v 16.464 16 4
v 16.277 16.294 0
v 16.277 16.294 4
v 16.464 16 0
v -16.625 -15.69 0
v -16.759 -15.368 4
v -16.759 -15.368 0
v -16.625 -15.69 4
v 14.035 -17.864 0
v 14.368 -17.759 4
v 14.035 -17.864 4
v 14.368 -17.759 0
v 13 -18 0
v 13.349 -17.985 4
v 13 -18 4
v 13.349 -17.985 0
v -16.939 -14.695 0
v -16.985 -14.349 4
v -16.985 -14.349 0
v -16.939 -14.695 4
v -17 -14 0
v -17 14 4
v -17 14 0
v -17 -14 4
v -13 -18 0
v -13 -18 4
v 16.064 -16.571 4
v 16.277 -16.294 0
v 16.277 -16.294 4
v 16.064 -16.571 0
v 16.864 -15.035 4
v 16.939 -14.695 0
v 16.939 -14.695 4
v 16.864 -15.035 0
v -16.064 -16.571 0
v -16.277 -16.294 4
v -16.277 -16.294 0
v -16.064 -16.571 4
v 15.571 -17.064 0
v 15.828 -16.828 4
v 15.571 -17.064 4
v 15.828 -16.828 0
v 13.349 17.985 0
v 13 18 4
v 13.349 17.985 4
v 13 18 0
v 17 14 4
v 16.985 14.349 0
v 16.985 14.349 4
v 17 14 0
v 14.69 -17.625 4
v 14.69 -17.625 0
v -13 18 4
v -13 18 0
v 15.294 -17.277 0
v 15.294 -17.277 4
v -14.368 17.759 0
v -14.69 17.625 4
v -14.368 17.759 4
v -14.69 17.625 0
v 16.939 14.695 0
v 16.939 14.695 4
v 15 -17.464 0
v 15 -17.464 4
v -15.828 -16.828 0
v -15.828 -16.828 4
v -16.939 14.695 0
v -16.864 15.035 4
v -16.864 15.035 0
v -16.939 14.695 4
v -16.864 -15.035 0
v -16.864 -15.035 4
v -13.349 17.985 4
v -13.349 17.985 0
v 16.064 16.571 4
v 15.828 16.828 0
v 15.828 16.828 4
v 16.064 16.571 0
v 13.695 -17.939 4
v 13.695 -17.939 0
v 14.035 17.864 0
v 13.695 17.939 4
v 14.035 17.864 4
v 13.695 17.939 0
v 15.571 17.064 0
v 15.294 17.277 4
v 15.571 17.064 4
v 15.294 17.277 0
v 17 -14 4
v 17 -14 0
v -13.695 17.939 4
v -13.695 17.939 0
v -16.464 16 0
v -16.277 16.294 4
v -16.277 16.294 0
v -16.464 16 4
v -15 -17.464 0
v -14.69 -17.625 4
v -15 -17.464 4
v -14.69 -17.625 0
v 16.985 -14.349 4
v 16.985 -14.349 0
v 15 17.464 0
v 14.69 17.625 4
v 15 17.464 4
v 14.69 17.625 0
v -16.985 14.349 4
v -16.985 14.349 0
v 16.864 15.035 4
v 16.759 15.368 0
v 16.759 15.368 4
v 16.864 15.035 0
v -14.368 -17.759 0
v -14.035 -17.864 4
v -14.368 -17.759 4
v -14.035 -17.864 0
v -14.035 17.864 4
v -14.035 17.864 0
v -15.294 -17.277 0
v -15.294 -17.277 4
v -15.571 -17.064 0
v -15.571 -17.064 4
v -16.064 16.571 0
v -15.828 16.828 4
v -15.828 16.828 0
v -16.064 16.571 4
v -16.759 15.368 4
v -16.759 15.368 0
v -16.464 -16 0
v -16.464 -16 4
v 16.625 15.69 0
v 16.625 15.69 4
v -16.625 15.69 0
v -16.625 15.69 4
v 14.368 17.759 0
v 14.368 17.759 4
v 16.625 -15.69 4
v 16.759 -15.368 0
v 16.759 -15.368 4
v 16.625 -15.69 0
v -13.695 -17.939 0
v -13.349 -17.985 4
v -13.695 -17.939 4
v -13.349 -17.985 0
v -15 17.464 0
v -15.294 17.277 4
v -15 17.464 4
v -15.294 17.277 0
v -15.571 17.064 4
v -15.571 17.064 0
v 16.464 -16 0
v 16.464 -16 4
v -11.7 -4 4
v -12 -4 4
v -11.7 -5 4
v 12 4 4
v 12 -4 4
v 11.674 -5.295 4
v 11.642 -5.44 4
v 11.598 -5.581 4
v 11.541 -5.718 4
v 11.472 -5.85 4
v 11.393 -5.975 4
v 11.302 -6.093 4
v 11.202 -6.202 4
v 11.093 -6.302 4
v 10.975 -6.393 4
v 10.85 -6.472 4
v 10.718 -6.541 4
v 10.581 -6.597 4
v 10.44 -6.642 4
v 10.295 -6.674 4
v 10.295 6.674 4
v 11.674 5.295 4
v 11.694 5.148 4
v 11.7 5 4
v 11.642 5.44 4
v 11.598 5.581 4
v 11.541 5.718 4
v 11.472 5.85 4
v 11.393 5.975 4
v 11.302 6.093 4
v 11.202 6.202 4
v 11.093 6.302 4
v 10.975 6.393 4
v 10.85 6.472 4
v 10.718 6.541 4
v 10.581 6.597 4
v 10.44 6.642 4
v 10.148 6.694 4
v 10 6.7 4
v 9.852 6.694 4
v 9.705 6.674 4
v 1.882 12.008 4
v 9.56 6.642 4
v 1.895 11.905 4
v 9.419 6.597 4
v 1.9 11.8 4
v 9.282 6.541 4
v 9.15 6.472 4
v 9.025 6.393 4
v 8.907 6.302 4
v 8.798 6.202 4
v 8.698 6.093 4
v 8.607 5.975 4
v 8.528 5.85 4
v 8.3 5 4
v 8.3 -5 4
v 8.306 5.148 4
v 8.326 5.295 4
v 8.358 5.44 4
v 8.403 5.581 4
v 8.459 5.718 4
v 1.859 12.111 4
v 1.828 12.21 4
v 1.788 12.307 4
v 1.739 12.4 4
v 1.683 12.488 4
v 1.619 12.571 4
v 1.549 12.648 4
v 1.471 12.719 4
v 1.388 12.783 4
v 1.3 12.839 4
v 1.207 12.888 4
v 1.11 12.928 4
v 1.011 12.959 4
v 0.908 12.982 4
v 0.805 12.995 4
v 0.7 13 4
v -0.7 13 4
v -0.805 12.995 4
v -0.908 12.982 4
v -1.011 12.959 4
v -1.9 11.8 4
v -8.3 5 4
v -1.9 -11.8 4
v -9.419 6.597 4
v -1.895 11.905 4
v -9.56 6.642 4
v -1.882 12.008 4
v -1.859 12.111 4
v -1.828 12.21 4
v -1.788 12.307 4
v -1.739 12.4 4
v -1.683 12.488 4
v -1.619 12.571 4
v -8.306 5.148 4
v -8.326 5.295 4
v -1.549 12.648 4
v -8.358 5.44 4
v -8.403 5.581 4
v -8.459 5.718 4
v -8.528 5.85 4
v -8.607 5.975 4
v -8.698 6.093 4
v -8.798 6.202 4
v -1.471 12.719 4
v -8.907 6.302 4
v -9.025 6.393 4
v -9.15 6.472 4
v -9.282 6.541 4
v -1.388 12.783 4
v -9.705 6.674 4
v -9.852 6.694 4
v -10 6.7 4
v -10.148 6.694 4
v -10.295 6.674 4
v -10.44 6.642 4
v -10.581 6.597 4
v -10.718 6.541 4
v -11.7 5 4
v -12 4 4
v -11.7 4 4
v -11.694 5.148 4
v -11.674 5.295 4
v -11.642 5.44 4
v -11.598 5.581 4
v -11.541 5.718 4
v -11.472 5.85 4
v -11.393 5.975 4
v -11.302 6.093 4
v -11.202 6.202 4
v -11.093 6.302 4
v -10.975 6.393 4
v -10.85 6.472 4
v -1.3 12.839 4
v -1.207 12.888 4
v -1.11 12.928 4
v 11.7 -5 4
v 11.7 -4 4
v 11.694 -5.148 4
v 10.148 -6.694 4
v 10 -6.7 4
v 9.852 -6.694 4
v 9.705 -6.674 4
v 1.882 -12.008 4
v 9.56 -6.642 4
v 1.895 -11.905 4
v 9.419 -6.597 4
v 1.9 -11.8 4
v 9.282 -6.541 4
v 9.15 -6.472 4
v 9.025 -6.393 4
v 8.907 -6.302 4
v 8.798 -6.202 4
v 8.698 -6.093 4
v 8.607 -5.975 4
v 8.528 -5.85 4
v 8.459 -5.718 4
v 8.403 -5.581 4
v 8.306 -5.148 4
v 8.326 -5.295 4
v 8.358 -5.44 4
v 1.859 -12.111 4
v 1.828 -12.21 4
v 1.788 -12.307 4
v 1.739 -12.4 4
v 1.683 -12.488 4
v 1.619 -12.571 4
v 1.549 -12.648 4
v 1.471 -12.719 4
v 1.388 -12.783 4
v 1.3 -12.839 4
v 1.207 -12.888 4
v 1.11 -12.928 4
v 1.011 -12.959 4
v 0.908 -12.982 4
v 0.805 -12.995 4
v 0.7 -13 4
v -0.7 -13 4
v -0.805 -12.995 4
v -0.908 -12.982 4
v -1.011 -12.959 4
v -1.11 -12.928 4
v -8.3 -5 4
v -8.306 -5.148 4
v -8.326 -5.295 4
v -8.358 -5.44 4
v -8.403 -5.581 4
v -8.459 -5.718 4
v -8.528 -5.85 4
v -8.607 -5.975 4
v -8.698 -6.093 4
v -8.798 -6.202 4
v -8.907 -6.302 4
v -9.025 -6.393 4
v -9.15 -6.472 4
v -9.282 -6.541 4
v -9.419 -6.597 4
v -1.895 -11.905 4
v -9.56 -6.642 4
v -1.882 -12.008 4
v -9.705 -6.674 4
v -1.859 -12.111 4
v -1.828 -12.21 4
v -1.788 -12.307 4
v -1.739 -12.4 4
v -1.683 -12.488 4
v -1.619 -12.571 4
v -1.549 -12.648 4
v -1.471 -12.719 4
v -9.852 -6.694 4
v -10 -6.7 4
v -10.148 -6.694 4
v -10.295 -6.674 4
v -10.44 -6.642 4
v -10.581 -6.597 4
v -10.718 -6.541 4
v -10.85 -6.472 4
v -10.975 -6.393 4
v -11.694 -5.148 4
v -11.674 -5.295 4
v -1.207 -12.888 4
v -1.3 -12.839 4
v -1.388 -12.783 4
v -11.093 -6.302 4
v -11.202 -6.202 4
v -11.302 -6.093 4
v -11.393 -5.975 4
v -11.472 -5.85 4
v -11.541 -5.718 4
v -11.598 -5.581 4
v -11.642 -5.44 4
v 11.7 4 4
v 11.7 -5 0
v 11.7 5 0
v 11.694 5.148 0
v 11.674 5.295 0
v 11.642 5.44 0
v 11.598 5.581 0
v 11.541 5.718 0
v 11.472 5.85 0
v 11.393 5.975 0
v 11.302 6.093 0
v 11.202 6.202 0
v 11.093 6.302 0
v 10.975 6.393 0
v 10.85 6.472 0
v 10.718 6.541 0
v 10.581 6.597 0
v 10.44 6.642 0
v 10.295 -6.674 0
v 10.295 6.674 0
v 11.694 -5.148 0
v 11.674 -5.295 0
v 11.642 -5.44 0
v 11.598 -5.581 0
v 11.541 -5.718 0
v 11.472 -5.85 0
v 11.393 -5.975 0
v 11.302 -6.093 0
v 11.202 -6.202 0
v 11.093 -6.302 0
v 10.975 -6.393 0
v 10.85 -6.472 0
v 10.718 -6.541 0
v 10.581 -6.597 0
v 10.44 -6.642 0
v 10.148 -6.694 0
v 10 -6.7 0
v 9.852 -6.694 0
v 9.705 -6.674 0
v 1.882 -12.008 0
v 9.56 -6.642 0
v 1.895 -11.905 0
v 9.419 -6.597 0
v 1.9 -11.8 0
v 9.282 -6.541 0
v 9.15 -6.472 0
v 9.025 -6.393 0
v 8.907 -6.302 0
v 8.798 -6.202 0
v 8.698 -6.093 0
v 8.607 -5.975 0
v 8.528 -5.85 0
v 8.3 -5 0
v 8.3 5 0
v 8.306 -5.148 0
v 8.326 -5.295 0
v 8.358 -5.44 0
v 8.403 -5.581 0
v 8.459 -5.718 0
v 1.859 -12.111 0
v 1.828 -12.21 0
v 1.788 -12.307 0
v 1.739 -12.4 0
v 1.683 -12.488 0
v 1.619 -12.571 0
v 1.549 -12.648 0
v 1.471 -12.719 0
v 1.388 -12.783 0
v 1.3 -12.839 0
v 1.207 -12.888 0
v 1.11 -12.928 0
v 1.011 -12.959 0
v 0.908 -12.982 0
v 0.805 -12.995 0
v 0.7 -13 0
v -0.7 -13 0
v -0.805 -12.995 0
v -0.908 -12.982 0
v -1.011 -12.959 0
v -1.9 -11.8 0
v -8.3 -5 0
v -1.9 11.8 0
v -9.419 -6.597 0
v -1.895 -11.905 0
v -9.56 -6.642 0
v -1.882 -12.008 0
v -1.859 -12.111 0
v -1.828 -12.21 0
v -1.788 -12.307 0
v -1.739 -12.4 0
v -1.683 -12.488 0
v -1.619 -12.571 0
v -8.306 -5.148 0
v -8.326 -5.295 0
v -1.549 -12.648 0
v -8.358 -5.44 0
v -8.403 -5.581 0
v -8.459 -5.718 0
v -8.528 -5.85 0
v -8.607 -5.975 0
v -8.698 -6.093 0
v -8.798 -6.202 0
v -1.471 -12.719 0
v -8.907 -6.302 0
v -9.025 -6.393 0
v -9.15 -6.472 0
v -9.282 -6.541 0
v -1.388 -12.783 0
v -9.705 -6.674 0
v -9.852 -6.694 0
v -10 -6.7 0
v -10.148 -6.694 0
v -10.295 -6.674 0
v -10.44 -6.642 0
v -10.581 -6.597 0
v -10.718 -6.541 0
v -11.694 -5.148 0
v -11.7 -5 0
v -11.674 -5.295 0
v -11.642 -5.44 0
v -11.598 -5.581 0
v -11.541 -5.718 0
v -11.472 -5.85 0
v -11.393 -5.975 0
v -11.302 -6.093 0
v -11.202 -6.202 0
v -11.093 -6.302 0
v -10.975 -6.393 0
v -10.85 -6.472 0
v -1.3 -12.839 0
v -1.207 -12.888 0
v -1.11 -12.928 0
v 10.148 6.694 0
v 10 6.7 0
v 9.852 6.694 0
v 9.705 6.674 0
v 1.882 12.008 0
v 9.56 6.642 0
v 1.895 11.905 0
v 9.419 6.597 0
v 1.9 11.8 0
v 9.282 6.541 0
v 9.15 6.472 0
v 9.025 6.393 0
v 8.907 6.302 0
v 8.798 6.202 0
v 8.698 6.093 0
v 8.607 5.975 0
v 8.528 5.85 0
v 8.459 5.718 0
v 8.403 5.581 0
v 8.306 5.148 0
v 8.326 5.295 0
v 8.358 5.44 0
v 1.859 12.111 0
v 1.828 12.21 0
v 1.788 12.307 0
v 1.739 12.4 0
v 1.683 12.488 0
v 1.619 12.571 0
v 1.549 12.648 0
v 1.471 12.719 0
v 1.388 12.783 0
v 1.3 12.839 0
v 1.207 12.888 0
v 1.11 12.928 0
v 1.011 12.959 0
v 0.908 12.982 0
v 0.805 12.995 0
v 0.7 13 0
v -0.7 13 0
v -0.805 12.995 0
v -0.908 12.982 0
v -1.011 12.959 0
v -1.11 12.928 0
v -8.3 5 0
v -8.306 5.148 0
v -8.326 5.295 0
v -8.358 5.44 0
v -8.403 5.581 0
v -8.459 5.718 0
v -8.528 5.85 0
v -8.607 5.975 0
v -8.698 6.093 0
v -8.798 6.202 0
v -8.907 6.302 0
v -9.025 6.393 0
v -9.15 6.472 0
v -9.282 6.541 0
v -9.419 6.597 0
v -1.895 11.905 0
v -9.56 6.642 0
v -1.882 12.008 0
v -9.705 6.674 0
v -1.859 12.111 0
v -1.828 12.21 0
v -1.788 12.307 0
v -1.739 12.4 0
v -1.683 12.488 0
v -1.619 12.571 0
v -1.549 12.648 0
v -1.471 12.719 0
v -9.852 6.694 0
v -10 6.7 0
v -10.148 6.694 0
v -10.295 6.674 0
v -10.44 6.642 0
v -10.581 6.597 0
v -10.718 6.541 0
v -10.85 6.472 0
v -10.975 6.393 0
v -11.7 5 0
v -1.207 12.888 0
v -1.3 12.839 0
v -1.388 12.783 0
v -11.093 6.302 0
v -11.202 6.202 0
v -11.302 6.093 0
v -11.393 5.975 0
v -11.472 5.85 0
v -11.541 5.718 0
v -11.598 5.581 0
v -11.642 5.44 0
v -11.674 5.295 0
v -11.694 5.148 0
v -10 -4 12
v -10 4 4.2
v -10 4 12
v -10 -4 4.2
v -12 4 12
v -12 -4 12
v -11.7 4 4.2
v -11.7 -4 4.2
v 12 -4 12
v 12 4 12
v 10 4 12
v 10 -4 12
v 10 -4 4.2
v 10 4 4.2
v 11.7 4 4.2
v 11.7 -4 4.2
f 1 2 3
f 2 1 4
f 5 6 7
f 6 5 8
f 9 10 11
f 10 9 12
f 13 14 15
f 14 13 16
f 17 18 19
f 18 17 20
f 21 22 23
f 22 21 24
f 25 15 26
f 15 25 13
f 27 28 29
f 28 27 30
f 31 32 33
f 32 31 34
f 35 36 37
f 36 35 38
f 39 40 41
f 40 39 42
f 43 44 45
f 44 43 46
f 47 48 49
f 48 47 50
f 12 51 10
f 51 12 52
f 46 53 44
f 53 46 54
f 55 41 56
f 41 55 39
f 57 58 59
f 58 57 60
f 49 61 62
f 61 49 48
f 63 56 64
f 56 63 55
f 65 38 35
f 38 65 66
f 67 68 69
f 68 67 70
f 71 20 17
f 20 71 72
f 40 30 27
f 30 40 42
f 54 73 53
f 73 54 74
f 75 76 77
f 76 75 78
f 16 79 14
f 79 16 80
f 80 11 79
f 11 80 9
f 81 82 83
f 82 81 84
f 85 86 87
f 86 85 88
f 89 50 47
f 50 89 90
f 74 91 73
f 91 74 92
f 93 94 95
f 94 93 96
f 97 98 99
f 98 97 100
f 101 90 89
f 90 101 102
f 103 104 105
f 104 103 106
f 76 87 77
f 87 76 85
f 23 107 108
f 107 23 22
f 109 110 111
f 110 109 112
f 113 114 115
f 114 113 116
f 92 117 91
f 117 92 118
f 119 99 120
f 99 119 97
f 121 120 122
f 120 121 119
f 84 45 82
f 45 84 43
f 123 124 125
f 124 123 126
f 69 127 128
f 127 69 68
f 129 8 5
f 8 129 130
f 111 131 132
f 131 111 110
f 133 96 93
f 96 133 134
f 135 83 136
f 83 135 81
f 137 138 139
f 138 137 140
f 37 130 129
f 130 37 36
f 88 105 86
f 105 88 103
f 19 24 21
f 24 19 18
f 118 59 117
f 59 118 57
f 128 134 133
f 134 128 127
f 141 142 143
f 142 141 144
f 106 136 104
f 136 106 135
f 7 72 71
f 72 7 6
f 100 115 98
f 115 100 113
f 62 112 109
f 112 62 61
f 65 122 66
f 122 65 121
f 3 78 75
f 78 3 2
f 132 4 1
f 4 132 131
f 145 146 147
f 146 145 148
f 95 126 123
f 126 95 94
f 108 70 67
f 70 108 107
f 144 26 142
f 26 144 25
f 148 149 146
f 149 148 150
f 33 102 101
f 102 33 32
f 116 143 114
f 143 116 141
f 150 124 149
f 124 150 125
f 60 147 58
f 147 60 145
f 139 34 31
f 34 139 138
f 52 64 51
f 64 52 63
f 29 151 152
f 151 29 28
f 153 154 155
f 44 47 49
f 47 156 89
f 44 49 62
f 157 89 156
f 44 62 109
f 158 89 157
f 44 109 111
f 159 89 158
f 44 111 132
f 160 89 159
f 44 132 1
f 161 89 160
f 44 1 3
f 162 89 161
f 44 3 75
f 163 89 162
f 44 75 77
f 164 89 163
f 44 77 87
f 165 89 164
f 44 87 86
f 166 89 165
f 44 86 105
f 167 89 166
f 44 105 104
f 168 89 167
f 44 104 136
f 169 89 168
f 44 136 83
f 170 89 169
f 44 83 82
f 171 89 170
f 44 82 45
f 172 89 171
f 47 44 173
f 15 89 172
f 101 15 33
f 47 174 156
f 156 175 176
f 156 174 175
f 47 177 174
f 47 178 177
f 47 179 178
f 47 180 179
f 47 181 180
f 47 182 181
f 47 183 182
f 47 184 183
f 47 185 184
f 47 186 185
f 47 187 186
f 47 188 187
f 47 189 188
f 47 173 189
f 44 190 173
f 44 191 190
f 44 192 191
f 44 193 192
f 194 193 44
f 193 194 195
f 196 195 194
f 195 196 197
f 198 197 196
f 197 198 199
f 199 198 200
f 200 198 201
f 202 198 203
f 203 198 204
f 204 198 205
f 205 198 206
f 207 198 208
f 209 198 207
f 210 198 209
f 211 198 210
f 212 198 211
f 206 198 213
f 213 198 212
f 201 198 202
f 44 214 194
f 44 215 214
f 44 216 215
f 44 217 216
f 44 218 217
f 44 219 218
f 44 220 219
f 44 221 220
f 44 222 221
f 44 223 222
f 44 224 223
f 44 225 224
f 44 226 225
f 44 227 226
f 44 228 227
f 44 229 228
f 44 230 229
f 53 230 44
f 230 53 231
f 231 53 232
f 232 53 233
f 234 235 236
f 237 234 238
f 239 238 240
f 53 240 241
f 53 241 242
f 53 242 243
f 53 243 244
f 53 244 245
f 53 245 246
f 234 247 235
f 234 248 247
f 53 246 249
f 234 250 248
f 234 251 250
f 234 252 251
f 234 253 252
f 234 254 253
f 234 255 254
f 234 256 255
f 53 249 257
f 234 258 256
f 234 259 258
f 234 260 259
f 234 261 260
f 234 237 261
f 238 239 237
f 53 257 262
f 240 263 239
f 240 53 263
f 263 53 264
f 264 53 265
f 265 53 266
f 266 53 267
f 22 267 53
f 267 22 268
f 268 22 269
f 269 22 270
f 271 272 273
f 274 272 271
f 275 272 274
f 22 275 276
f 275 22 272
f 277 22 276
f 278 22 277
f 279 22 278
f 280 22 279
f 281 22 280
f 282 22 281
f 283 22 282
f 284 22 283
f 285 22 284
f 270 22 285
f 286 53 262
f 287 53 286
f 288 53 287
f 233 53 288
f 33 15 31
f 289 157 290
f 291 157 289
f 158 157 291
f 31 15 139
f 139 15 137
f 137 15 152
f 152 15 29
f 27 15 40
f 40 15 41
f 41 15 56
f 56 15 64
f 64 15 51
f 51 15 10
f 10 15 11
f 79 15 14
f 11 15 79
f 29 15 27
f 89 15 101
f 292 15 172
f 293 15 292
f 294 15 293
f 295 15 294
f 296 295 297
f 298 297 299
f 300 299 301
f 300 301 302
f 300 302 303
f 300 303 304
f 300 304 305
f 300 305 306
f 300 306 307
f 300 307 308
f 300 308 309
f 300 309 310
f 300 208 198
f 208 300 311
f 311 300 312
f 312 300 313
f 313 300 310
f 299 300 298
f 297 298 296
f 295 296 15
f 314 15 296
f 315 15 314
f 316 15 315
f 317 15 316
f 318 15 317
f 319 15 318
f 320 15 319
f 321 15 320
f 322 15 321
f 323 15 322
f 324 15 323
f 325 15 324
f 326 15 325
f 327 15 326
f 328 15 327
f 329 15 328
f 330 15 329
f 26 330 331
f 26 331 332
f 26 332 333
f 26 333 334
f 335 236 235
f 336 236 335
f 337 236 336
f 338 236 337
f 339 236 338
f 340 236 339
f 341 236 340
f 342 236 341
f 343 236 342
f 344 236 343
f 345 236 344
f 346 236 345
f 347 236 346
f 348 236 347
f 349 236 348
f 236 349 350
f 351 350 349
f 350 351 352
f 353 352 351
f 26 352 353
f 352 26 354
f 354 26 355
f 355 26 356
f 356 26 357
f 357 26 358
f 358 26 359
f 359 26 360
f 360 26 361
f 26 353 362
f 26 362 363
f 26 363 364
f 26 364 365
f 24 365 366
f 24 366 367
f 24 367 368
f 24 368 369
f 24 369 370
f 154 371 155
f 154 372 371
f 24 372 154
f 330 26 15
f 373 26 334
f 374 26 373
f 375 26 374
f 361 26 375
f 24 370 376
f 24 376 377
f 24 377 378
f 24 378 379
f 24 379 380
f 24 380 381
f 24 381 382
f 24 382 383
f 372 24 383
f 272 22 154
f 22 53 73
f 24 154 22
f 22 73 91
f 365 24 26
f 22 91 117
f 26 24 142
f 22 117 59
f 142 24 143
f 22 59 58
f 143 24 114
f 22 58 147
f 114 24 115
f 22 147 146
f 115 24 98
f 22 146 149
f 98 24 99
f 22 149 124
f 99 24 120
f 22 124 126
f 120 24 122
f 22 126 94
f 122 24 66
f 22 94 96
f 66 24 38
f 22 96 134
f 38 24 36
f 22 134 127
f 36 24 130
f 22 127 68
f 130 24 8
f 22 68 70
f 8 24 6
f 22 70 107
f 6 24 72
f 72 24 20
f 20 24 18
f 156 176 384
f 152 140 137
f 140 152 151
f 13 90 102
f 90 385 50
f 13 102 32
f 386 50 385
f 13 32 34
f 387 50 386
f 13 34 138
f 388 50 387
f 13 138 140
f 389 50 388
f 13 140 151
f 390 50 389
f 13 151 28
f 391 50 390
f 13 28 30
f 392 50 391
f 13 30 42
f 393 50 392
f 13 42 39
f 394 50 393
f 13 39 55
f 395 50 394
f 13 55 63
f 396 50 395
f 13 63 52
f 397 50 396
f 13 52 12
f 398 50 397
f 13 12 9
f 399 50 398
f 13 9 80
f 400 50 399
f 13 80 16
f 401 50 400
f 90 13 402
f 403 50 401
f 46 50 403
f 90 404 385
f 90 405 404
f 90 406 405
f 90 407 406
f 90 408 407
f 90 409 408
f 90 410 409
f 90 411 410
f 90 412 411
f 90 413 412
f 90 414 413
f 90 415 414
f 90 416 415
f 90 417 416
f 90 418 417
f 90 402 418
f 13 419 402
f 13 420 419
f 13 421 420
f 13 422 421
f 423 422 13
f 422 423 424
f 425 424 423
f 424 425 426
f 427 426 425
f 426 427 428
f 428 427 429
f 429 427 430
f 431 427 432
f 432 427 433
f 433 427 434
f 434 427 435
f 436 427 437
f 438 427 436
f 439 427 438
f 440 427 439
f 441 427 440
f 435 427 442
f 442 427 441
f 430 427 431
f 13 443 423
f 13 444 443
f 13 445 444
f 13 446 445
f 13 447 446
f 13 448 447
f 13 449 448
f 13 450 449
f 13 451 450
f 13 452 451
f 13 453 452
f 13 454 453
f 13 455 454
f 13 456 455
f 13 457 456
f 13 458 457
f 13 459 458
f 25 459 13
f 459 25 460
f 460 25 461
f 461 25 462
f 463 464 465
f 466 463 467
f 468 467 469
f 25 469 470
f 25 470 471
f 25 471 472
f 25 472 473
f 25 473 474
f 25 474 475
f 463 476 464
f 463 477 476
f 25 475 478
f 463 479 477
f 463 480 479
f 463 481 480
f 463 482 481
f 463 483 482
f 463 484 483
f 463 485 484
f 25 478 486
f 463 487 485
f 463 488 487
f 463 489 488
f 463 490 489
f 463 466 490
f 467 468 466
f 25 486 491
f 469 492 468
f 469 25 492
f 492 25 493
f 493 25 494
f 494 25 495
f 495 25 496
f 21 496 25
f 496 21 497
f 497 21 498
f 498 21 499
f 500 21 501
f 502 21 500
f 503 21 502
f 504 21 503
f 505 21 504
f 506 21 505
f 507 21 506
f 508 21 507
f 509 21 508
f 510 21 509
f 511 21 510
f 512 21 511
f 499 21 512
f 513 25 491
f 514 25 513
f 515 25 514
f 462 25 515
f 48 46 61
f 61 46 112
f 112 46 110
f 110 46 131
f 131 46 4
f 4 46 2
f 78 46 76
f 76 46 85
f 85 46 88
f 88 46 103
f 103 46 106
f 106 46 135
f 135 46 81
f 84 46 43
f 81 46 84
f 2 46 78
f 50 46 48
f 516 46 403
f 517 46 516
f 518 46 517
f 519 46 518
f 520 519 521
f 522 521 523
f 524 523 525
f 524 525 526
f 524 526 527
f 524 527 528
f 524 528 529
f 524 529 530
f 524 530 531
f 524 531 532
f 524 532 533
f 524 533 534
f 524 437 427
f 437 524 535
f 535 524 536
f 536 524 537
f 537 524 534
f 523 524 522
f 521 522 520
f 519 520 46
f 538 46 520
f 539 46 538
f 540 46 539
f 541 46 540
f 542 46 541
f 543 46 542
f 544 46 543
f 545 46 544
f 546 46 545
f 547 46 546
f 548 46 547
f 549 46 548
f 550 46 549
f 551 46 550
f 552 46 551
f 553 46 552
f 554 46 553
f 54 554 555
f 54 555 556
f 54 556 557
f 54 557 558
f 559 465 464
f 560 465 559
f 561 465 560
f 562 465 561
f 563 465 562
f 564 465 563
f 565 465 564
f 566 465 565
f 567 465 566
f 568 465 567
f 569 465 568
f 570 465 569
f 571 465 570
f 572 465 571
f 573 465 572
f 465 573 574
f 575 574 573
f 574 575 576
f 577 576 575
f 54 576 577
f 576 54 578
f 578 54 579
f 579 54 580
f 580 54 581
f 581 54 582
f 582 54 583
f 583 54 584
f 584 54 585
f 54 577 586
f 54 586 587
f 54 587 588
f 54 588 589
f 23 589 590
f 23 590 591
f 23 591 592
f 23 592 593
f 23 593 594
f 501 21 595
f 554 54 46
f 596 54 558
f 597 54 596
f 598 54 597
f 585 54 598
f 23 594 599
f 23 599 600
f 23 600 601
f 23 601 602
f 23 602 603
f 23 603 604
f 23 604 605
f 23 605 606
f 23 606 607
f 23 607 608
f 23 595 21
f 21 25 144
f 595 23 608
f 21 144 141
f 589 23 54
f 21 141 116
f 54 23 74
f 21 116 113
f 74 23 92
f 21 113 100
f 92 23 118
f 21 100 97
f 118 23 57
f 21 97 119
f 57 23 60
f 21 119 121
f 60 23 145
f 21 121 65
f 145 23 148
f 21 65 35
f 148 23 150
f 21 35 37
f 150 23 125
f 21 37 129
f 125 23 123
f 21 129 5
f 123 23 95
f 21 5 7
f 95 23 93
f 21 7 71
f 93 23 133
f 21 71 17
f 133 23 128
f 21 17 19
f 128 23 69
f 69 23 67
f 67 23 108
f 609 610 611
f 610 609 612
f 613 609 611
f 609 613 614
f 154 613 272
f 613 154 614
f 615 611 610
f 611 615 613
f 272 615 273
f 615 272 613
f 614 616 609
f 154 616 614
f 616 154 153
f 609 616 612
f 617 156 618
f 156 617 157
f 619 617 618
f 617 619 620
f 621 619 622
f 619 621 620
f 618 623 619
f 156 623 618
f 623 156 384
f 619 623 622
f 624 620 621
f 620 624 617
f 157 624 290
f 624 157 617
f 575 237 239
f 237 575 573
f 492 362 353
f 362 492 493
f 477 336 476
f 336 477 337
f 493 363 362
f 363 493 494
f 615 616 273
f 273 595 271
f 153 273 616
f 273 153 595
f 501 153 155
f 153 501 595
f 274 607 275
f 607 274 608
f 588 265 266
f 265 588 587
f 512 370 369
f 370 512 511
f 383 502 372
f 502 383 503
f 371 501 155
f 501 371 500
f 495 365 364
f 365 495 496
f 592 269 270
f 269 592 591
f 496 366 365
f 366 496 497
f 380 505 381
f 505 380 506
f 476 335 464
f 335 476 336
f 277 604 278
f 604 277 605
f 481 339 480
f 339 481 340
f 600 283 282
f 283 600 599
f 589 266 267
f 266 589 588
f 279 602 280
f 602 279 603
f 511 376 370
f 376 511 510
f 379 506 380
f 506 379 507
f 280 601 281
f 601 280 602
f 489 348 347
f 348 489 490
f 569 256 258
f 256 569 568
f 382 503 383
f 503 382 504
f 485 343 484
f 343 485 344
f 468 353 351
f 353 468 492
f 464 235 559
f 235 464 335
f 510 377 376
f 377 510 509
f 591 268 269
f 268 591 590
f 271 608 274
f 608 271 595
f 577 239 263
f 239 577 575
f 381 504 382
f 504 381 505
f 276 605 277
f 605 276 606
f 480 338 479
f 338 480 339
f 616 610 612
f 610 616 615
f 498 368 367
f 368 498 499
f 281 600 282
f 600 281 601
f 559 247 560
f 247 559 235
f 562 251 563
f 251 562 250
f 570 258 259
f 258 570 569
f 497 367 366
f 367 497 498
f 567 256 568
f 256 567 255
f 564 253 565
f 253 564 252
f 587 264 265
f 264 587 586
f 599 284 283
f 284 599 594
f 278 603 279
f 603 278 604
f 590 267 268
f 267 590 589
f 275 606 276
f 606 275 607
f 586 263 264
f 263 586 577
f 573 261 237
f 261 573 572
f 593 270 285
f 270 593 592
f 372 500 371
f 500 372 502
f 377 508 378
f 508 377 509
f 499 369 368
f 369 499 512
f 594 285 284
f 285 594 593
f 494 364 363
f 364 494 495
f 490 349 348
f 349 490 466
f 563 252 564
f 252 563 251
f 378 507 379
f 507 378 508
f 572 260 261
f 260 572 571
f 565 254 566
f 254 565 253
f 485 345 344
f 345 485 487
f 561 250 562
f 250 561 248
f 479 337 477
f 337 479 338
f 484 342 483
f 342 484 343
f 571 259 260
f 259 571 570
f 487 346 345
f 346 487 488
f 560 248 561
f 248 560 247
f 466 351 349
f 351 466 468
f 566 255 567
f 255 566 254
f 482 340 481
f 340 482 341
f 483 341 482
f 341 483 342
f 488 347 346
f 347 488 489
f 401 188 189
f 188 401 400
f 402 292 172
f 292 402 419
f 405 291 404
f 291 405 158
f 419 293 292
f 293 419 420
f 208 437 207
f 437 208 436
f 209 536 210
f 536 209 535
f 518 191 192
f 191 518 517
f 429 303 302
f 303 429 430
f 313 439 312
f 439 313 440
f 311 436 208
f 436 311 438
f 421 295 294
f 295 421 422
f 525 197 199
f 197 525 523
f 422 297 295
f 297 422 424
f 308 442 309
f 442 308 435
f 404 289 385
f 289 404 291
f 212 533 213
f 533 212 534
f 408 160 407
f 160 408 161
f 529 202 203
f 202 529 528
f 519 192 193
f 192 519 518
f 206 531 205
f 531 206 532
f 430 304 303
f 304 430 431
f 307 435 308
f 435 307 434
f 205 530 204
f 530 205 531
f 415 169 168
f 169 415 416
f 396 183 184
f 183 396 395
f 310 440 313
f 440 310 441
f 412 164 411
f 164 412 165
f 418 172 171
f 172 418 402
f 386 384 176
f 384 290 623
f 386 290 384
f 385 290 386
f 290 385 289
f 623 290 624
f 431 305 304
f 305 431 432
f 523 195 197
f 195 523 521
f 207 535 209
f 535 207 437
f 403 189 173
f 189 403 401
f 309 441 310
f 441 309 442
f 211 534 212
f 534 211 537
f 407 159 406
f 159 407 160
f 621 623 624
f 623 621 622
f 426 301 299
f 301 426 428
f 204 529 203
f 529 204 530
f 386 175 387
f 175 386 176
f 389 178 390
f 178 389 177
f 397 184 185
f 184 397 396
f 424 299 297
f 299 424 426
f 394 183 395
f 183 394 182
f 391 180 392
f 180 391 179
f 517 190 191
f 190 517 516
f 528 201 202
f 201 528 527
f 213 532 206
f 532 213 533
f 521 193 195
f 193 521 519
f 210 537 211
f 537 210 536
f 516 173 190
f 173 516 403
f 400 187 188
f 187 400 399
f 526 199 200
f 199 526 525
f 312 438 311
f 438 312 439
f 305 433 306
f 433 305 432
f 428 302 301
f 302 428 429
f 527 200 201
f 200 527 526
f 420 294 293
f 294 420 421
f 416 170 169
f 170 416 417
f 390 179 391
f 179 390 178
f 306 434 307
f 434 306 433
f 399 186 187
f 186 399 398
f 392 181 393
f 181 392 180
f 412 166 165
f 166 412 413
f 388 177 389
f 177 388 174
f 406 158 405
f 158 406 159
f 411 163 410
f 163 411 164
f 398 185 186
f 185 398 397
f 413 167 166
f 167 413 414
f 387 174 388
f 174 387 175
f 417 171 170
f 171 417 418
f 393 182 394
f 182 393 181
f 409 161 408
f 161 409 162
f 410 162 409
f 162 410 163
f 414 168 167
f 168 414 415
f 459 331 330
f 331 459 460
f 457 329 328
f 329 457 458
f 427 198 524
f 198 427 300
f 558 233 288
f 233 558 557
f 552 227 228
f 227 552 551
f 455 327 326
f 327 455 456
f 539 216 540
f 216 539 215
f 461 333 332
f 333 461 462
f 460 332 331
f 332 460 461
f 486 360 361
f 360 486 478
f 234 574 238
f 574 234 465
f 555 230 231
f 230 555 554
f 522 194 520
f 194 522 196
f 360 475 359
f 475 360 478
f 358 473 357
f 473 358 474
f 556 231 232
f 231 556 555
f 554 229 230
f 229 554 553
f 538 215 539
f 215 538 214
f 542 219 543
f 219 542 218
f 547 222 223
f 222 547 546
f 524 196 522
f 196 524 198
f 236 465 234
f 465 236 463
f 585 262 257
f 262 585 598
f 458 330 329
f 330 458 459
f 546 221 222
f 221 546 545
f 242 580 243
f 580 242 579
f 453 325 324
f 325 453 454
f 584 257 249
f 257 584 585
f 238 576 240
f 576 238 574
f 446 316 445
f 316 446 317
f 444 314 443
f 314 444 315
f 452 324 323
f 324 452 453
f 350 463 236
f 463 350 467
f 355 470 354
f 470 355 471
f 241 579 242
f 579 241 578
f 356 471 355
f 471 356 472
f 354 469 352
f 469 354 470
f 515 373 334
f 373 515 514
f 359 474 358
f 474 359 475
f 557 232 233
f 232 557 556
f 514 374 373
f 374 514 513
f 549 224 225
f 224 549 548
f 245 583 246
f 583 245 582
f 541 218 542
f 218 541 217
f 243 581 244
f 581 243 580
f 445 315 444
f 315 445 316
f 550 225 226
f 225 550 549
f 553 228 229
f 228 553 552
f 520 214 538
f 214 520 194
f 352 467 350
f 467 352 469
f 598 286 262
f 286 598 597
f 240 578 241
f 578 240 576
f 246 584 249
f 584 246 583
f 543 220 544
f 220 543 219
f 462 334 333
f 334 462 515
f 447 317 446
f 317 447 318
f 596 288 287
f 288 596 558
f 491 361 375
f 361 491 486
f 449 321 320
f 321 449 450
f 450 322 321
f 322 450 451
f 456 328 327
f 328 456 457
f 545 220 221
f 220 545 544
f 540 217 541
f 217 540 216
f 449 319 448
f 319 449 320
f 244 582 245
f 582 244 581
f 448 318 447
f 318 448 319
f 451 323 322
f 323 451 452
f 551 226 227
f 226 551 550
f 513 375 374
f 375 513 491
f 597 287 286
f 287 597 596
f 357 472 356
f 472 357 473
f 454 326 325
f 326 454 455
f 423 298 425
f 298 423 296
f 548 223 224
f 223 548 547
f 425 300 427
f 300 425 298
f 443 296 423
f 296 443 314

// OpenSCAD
// file: woli_config.scad
// ============================================================
// WOLI V1.1 AUDITED FINAL — MASTER PARAMETERS
// Units: mm
// ============================================================

$fn = 72;

// ---------- GLOBAL ----------
fit_clearance = 0.40;
wall = 3.0;
floor_t = 5.0;
cover_t = 2.8;
shell_r = 10.0;

m3_clear = 3.4;
m3_pilot_d = 2.8;
m3_pilot_depth = 4.2;

tie_slot_w = 3.8;
tie_slot_l = 18;

// ---------- BODY ----------
body_w = 170;
body_l = 90;
chassis_h = 31;
top_h = 34;

top_upper_w = 162;
top_upper_l = 80;
top_upper_r = 9;

// ---------- N20 DRIVE ----------
wheel_d = 43;
wheel_w = 17.5;

n20_x = 12;
n20_y = 33;
n20_z = 10;

n20_bracket_x = 25;
n20_bracket_y = 8.5;
n20_bracket_z = 11.5;
n20_bracket_hole_cc = 17;      // approx; slots absorb error

wheel_axis_ground_z = wheel_d/2; // reference only; actual chassis ground plane requires hardware check
wheel_opening_l = 25;            // side wheel cutout depth (Y), mm
motor_y = -body_l/2 + body_l/3;  // wheel center: 1/3 body depth in from front (-Y)
motor_slot_len = 8;
motor_bracket_zone_x = body_w/2 - 18;

// ---------- BALL CASTER ----------
caster_w = 22;
caster_l = 17;
caster_h = 15;
caster_ball_d_visual_ref = 11.5; // photo-only reference; not used for fit
caster_dock_y = body_l/2 - 21;

caster_body_clear = 0.7;
caster_retainer_t = 3.0;
caster_retainer_screw_cc = 27;

caster_mount_x = 15;
caster_mount_y = 12;
caster_floor_open = 18.5;

// ---------- MAIN PCB ----------
pcb_w = 50;
pcb_l = 70;
pcb_stack_h = 15;

pcb_tray_w = 56;
pcb_tray_l = 76;
pcb_mount_cc_x = 44;
pcb_mount_cc_y = 64;

// ---------- MG90S ----------
servo_a = 32.4;
servo_b = 32.5;
servo_c = 12;
servo_fit = 0.7;

// ---------- LIMIT SWITCH ----------
limit_w = 21;
limit_l = 23;
limit_h = 6;

// ---------- VL53L0X ----------
tof_w = 10.7;
tof_l = 25;
tof_h = 11.5;
tof_rail_clear = 0.7;

tof_bezel_w = 34;
tof_bezel_h = 19;

// ---------- PHONE HOLDER / NECK ----------
phone_ball_d = 18.0;            // physical socket fit still required
neck_h = 30;
neck_base_w = 54;
neck_base_l = 42;
neck_base_h = 5;
neck_hole_x = 38;
neck_hole_y = 26;

neck_recess_w = 62;
neck_recess_l = 50;
neck_recess_d = 1.2;

neck_pilot_d = 2.8;
neck_pilot_depth = 7.0;

// reference phone clearance envelope only
phone_ref_w = 165;
phone_ref_h = 82;
phone_ref_t = 12;

// ---------- KLIFE PD-Q2 BATTERY ----------
battery_w = 68;
battery_l = 143;
battery_h = 11;
battery_mass_g = 205;

battery_fit_clear = 0.8;
battery_tray_w = 84;
battery_tray_l = 146;
battery_tray_t = 2.4;
battery_rail_t = 2.5;
battery_rail_h = 5.5;
battery_center_y = -18;

battery_tray_mount_x = 39;
battery_tray_mount_y = 55;

// ---------- UPPER ELECTRONICS DECK ----------
bridge_w = 122;
bridge_l = 94;
bridge_t = 3.0;
bridge_leg_h = 20;
bridge_leg_x = 56;
bridge_leg_y = 36;

module_boss_h = 4.5;
module_boss_d = 8.0;
module_pilot_d = 2.8;

pcb_deck_cx = -25;
pcb_deck_cy = 0;

tb_deck_cx = 34;
tb_deck_cy = 17;

usbc_deck_cx = 36;
usbc_deck_cy = -24;

// ---------- TB6612FNG HW-166 ----------
tb6612_w = 26;
tb6612_l = 26;
tb6612_clear = 0.6;

// total installed height is intentionally not hard-coded

// ---------- USB-C BREAKOUT ----------
usbc_board_w = 12;
usbc_board_l = 15;
usbc_connector_h = 4.2;
usbc_clear = 0.6;

// ---------- TOP COVER INTERFACE ----------
cover_skirt_depth = 4.0;
cover_skirt_clear = 0.8;
cover_skirt_t = 2.5;

cover_side_screw_y = 55 * body_l / 190;
cover_side_screw_z = -2.5;

rear_service_w = 42;
rear_service_h = 14;
rear_hatch_screw_x = 19;
rear_hatch_center_z = 10;

// ---------- CABLE MANAGEMENT ----------
cable_bridge_w = 24;
cable_bridge_l = 14;
cable_bridge_h = 8;
cable_bridge_channel = 8;

// ---------- SERVO LOCK FRAMEWORK ----------
lock_angle_deg = 90;
unlock_angle_deg = 10;

lock_plate_d = 28;
lock_arm_w = 10;
lock_arm_t = 4.0;
lock_reach = 22;
lock_tip_d = 10;

horn_center_clear_d = 7.0;
horn_slot_d = 2.4;              // physical stock-horn check required
horn_slot_len = 8.0;
horn_slot_radius = 8.0;

lock_pad_t = 2.0;
lock_pad_d = 11.0;
// file: woli_lib.scad
include <woli_config.scad>;

module rr2d(w,l,r){
    offset(r=r) square([w-2*r,l-2*r], center=true);
}

module rplate(w,l,h,r){
    linear_extrude(height=h) rr2d(w,l,r);
}

module rshell(w,l,h,r,t,bottom){
    difference(){
        rplate(w,l,h,r);
        translate([0,0,bottom])
            rplate(w-2*t,l-2*t,h,r-t);
    }
}

module slot2d(len,d){
    hull(){
        translate([-len/2,0]) circle(d=d);
        translate([ len/2,0]) circle(d=d);
    }
}

module slot3d(len,d,h){
    linear_extrude(height=h) slot2d(len,d);
}

module tie_slot(h=5){
    rplate(tie_slot_w,tie_slot_l,h,1.2);
}

module body_screw_pattern(h=20){
    for(x=[-screw_x,screw_x])
        for(y=[-screw_y,screw_y])
            translate([x,y,-1])
                cylinder(h=h,d=m3_clear);
}

module body_bosses(h=20){
    for(x=[-screw_x,screw_x])
        for(y=[-screw_y,screw_y])
            translate([x,y,0])
                cylinder(h=h,d=m3_boss_d);
}


// Closed-top shell for removable upper cover.
// Leaves the underside open and preserves a roof thickness.
module top_shell(w,l,h,r,t){
    difference(){
        rplate(w,l,h,r);
        translate([0,0,-0.1])
            rplate(w-2*t,l-2*t,h-t+0.1,r-t);
    }
}


// Tapered rounded solid built from two rounded plates.
// Useful for product-like enclosure shoulders.
module tapered_rounded_solid(w0,l0,w1,l1,h,r0,r1){
    hull(){
        rplate(w0,l0,0.8,r0);
        translate([0,0,h-0.8])
            rplate(w1,l1,0.8,r1);
    }
}

// Open-bottom tapered cover with closed roof.
module tapered_top_shell(w0,l0,w1,l1,h,r0,r1,t){
    difference(){
        tapered_rounded_solid(w0,l0,w1,l1,h,r0,r1);
        translate([0,0,-0.1])
            tapered_rounded_solid(
                w0-2*t,l0-2*t,
                w1-2*t,l1-2*t,
                h-t+0.1,
                max(r0-t,1),max(r1-t,1)
            );
    }
}
// main file
include <woli_lib.scad>;

bw=34; bl=36; bh=4;

difference(){
    union(){
        rplate(bw,bl,bh,4);

        translate([-limit_w/2-1.5,-limit_h/2-1,bh])
            cube([2,limit_h+2,8]);

        translate([ limit_w/2-0.5,-limit_h/2-1,bh])
            cube([2,limit_h+2,8]);
    }

    for(x=[-10,10])
        translate([x,0,-0.1])
            rotate([0,0,90])
                slot3d(10,m3_clear,bh+0.3);

    translate([0,0,-0.1])
        rplate(tie_slot_w,limit_l+3,bh+0.3,1.2);
}
